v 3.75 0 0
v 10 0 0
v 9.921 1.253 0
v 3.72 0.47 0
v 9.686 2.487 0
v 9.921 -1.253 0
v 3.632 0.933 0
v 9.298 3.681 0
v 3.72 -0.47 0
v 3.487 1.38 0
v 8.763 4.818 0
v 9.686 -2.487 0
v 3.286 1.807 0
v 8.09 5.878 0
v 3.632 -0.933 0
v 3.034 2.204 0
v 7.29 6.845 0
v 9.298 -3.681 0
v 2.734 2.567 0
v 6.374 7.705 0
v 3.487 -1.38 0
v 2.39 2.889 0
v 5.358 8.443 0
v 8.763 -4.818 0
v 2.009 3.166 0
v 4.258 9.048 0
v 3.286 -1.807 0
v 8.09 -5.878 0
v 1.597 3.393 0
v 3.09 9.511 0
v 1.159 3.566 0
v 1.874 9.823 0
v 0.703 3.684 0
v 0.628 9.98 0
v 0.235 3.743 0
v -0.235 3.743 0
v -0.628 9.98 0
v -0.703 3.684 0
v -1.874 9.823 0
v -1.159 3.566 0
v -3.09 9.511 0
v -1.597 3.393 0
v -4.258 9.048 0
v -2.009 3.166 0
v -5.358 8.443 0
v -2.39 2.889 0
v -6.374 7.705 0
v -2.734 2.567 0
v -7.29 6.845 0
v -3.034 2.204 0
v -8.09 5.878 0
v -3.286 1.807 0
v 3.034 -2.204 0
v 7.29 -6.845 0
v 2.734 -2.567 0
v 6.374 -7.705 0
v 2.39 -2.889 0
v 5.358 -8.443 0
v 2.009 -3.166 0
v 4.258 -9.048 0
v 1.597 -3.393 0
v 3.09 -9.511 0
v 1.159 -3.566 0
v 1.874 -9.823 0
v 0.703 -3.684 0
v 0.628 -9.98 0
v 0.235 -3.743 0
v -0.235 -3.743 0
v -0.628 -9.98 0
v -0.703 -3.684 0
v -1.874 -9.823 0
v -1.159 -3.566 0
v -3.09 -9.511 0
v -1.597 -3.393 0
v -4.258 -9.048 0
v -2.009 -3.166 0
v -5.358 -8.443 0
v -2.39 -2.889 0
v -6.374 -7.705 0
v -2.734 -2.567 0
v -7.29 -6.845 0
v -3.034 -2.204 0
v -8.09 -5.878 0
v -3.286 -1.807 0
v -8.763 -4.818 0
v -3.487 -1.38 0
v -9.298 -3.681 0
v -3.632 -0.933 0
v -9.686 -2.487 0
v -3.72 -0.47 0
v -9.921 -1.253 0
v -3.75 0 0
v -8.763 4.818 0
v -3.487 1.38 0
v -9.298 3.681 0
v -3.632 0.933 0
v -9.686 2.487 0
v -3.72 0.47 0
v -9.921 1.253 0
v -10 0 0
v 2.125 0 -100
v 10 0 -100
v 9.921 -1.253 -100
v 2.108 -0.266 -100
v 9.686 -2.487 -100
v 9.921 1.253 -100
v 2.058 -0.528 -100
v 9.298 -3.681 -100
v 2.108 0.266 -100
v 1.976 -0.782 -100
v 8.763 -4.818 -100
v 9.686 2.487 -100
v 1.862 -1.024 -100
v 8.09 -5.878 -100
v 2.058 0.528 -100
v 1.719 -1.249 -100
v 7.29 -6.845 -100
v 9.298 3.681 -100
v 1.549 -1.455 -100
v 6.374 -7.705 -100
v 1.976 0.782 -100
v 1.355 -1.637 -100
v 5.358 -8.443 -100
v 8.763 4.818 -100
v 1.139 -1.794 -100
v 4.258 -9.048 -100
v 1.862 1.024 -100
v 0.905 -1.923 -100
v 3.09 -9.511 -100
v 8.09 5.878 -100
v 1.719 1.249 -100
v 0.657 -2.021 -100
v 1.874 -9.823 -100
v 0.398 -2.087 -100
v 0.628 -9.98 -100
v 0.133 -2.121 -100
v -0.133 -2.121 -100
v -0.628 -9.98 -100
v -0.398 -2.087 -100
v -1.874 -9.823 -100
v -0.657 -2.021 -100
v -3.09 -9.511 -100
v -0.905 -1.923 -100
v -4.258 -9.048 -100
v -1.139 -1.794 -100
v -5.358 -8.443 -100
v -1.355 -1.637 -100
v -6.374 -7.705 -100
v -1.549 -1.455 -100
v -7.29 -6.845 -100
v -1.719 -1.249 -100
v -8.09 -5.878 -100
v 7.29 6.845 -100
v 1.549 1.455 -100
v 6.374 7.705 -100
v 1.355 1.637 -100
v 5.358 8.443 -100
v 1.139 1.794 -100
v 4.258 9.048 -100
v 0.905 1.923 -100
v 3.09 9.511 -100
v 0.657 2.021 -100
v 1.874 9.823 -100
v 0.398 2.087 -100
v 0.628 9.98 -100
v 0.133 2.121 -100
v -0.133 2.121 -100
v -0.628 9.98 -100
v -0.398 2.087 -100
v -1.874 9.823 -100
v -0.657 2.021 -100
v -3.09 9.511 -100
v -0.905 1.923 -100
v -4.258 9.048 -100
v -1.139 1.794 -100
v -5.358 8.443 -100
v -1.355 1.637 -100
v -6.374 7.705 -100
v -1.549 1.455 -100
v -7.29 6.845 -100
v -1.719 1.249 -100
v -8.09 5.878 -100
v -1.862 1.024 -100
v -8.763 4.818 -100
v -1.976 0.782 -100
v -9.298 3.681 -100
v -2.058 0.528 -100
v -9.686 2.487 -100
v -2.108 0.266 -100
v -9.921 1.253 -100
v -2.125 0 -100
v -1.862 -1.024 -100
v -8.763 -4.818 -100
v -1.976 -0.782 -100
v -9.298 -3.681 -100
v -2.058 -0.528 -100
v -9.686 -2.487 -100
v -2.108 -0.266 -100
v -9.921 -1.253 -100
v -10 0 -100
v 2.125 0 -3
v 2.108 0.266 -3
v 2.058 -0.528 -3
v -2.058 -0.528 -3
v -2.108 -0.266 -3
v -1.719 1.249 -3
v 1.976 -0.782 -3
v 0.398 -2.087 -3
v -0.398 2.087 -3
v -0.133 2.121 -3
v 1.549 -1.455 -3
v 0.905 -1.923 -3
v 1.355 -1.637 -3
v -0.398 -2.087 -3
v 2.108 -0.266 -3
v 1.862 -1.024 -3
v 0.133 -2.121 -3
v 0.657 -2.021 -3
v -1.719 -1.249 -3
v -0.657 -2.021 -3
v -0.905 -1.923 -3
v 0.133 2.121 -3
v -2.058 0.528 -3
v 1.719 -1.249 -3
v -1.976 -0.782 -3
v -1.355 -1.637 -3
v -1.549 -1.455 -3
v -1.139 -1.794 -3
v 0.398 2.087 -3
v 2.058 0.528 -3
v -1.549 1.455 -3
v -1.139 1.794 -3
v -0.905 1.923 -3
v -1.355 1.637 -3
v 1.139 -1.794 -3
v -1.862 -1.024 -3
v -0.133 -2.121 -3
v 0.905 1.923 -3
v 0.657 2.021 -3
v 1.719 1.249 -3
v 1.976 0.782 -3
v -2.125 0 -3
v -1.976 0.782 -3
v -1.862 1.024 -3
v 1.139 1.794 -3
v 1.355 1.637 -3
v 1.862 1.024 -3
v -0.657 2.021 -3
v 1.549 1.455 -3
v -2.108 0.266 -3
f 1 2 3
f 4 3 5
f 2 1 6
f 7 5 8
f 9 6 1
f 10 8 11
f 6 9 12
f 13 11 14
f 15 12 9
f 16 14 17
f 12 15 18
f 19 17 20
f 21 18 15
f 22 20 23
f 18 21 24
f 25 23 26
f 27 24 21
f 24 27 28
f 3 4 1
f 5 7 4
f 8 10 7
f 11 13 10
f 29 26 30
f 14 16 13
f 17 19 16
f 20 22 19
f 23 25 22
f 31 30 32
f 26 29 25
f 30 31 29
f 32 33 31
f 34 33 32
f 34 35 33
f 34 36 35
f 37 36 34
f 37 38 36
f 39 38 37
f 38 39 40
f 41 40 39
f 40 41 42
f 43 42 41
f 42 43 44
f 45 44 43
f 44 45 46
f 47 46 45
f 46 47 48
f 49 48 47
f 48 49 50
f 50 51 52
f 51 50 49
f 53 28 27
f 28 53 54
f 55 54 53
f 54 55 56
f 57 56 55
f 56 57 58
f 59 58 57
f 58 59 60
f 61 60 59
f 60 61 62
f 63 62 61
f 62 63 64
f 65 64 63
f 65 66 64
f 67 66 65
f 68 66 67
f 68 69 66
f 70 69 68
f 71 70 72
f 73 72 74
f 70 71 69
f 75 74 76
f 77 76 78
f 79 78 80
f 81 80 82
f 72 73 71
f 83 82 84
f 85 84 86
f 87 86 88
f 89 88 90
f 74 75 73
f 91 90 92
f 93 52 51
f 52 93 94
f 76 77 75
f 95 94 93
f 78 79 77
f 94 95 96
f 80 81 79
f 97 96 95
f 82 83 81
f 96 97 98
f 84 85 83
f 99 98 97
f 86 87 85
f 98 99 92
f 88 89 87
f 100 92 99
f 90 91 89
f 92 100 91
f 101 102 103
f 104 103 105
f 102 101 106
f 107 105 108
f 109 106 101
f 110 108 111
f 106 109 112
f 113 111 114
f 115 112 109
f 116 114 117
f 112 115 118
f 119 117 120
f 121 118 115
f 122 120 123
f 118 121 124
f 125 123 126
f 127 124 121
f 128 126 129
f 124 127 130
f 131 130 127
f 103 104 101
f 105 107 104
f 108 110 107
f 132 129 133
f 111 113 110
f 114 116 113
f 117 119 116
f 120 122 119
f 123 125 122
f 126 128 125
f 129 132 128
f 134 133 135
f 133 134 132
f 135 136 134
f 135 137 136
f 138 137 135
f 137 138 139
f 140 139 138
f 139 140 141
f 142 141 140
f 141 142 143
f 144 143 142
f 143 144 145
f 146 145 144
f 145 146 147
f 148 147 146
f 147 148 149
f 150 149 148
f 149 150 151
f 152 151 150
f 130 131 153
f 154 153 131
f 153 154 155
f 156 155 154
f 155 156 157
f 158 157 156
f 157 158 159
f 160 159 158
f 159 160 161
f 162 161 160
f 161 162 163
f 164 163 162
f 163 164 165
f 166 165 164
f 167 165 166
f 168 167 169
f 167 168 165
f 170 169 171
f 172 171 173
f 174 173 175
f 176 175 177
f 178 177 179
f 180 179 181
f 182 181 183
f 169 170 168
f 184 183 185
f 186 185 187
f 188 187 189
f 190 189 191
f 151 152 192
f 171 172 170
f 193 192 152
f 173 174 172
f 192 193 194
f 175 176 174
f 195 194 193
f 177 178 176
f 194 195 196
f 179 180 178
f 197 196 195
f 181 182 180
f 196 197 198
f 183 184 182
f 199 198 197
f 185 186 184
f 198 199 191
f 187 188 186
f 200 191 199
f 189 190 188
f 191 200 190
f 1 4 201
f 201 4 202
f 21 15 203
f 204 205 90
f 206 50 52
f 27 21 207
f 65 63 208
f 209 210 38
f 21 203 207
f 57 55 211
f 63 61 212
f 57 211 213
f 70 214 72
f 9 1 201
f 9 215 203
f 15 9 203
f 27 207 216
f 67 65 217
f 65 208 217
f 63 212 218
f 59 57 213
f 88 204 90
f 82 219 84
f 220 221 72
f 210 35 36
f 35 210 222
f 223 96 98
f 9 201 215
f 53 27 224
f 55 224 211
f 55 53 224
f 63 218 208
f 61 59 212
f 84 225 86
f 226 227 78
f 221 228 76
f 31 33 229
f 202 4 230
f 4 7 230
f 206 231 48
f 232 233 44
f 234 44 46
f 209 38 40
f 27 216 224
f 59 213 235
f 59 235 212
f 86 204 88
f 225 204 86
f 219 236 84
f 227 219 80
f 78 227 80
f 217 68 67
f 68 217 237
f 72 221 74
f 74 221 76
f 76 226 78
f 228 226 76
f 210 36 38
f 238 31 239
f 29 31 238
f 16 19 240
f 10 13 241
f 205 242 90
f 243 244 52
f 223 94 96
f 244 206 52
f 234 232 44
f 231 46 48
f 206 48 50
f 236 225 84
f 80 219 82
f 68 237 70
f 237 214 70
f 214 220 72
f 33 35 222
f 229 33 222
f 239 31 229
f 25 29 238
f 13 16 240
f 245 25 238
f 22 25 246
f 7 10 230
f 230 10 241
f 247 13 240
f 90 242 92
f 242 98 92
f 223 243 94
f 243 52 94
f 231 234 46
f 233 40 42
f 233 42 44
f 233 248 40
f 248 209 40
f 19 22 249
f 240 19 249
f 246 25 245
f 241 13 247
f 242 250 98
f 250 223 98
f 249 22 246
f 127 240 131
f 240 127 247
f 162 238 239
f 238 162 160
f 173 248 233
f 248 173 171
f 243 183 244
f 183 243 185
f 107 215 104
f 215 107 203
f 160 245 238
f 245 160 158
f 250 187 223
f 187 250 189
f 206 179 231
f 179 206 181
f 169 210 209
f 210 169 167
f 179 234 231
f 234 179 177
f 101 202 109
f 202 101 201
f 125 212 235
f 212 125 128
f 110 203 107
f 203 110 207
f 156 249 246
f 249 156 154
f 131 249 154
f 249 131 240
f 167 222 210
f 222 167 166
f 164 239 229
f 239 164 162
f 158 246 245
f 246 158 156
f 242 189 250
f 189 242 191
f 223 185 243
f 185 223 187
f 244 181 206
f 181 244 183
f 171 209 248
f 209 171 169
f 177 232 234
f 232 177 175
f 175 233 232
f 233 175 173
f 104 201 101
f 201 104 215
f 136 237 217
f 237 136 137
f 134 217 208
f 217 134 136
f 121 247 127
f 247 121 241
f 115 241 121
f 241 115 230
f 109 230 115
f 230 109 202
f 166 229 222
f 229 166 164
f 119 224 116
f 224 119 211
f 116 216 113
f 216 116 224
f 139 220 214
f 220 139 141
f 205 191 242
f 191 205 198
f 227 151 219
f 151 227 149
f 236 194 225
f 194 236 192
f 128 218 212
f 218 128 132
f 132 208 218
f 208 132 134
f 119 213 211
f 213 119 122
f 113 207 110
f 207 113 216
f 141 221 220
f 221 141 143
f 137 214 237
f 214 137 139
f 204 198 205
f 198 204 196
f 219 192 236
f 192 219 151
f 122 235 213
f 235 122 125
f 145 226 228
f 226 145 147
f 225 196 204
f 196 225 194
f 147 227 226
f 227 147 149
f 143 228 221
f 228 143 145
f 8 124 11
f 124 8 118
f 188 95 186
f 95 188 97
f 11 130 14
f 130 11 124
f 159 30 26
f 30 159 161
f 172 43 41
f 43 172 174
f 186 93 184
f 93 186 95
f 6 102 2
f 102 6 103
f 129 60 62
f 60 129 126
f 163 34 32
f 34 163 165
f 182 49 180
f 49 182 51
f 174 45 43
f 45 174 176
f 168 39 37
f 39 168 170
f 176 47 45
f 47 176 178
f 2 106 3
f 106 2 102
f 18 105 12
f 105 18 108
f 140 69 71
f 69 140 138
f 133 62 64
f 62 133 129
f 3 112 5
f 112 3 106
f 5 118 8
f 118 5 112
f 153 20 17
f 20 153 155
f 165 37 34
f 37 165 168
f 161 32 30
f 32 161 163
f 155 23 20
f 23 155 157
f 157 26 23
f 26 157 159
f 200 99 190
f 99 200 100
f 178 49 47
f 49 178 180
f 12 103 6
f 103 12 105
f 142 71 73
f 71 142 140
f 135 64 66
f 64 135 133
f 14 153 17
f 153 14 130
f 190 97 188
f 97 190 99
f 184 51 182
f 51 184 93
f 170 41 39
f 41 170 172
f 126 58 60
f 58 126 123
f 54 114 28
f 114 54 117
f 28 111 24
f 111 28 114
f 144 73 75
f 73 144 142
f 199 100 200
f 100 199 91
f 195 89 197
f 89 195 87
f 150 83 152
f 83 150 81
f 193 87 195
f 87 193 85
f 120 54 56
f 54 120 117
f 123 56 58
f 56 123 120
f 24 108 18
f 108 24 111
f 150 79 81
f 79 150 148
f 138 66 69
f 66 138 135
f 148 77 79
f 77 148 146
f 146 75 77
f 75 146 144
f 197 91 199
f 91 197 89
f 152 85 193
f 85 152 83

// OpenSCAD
$fn = 50;


difference() {
	union() {
		translate(v = [0, 0, -100.0000000000]) {
			cylinder(h = 100, r = 10.0000000000);
		}
		cylinder(h = 0, r = 19.0000000000);
	}
	union() {
		translate(v = [0, 0, 0]) {
			rotate(a = [0, 0, 0]) {
				difference() {
					union() {
						#translate(v = [0, 0, -100.0000000000]) {
							cylinder(h = 100, r = 2.0000000000);
						}
						#translate(v = [0, 0, -3]) {
							cylinder(h = 3, r1 = 2.1250000000, r2 = 3.7500000000);
						}
						#translate(v = [0, 0, -100.0000000000]) {
							cylinder(h = 100, r = 2.1250000000);
						}
						#translate(v = [0, 0, -100.0000000000]) {
							cylinder(h = 100, r = 2.0000000000);
						}
					}
					union();
				}
			}
		}
	}
}
